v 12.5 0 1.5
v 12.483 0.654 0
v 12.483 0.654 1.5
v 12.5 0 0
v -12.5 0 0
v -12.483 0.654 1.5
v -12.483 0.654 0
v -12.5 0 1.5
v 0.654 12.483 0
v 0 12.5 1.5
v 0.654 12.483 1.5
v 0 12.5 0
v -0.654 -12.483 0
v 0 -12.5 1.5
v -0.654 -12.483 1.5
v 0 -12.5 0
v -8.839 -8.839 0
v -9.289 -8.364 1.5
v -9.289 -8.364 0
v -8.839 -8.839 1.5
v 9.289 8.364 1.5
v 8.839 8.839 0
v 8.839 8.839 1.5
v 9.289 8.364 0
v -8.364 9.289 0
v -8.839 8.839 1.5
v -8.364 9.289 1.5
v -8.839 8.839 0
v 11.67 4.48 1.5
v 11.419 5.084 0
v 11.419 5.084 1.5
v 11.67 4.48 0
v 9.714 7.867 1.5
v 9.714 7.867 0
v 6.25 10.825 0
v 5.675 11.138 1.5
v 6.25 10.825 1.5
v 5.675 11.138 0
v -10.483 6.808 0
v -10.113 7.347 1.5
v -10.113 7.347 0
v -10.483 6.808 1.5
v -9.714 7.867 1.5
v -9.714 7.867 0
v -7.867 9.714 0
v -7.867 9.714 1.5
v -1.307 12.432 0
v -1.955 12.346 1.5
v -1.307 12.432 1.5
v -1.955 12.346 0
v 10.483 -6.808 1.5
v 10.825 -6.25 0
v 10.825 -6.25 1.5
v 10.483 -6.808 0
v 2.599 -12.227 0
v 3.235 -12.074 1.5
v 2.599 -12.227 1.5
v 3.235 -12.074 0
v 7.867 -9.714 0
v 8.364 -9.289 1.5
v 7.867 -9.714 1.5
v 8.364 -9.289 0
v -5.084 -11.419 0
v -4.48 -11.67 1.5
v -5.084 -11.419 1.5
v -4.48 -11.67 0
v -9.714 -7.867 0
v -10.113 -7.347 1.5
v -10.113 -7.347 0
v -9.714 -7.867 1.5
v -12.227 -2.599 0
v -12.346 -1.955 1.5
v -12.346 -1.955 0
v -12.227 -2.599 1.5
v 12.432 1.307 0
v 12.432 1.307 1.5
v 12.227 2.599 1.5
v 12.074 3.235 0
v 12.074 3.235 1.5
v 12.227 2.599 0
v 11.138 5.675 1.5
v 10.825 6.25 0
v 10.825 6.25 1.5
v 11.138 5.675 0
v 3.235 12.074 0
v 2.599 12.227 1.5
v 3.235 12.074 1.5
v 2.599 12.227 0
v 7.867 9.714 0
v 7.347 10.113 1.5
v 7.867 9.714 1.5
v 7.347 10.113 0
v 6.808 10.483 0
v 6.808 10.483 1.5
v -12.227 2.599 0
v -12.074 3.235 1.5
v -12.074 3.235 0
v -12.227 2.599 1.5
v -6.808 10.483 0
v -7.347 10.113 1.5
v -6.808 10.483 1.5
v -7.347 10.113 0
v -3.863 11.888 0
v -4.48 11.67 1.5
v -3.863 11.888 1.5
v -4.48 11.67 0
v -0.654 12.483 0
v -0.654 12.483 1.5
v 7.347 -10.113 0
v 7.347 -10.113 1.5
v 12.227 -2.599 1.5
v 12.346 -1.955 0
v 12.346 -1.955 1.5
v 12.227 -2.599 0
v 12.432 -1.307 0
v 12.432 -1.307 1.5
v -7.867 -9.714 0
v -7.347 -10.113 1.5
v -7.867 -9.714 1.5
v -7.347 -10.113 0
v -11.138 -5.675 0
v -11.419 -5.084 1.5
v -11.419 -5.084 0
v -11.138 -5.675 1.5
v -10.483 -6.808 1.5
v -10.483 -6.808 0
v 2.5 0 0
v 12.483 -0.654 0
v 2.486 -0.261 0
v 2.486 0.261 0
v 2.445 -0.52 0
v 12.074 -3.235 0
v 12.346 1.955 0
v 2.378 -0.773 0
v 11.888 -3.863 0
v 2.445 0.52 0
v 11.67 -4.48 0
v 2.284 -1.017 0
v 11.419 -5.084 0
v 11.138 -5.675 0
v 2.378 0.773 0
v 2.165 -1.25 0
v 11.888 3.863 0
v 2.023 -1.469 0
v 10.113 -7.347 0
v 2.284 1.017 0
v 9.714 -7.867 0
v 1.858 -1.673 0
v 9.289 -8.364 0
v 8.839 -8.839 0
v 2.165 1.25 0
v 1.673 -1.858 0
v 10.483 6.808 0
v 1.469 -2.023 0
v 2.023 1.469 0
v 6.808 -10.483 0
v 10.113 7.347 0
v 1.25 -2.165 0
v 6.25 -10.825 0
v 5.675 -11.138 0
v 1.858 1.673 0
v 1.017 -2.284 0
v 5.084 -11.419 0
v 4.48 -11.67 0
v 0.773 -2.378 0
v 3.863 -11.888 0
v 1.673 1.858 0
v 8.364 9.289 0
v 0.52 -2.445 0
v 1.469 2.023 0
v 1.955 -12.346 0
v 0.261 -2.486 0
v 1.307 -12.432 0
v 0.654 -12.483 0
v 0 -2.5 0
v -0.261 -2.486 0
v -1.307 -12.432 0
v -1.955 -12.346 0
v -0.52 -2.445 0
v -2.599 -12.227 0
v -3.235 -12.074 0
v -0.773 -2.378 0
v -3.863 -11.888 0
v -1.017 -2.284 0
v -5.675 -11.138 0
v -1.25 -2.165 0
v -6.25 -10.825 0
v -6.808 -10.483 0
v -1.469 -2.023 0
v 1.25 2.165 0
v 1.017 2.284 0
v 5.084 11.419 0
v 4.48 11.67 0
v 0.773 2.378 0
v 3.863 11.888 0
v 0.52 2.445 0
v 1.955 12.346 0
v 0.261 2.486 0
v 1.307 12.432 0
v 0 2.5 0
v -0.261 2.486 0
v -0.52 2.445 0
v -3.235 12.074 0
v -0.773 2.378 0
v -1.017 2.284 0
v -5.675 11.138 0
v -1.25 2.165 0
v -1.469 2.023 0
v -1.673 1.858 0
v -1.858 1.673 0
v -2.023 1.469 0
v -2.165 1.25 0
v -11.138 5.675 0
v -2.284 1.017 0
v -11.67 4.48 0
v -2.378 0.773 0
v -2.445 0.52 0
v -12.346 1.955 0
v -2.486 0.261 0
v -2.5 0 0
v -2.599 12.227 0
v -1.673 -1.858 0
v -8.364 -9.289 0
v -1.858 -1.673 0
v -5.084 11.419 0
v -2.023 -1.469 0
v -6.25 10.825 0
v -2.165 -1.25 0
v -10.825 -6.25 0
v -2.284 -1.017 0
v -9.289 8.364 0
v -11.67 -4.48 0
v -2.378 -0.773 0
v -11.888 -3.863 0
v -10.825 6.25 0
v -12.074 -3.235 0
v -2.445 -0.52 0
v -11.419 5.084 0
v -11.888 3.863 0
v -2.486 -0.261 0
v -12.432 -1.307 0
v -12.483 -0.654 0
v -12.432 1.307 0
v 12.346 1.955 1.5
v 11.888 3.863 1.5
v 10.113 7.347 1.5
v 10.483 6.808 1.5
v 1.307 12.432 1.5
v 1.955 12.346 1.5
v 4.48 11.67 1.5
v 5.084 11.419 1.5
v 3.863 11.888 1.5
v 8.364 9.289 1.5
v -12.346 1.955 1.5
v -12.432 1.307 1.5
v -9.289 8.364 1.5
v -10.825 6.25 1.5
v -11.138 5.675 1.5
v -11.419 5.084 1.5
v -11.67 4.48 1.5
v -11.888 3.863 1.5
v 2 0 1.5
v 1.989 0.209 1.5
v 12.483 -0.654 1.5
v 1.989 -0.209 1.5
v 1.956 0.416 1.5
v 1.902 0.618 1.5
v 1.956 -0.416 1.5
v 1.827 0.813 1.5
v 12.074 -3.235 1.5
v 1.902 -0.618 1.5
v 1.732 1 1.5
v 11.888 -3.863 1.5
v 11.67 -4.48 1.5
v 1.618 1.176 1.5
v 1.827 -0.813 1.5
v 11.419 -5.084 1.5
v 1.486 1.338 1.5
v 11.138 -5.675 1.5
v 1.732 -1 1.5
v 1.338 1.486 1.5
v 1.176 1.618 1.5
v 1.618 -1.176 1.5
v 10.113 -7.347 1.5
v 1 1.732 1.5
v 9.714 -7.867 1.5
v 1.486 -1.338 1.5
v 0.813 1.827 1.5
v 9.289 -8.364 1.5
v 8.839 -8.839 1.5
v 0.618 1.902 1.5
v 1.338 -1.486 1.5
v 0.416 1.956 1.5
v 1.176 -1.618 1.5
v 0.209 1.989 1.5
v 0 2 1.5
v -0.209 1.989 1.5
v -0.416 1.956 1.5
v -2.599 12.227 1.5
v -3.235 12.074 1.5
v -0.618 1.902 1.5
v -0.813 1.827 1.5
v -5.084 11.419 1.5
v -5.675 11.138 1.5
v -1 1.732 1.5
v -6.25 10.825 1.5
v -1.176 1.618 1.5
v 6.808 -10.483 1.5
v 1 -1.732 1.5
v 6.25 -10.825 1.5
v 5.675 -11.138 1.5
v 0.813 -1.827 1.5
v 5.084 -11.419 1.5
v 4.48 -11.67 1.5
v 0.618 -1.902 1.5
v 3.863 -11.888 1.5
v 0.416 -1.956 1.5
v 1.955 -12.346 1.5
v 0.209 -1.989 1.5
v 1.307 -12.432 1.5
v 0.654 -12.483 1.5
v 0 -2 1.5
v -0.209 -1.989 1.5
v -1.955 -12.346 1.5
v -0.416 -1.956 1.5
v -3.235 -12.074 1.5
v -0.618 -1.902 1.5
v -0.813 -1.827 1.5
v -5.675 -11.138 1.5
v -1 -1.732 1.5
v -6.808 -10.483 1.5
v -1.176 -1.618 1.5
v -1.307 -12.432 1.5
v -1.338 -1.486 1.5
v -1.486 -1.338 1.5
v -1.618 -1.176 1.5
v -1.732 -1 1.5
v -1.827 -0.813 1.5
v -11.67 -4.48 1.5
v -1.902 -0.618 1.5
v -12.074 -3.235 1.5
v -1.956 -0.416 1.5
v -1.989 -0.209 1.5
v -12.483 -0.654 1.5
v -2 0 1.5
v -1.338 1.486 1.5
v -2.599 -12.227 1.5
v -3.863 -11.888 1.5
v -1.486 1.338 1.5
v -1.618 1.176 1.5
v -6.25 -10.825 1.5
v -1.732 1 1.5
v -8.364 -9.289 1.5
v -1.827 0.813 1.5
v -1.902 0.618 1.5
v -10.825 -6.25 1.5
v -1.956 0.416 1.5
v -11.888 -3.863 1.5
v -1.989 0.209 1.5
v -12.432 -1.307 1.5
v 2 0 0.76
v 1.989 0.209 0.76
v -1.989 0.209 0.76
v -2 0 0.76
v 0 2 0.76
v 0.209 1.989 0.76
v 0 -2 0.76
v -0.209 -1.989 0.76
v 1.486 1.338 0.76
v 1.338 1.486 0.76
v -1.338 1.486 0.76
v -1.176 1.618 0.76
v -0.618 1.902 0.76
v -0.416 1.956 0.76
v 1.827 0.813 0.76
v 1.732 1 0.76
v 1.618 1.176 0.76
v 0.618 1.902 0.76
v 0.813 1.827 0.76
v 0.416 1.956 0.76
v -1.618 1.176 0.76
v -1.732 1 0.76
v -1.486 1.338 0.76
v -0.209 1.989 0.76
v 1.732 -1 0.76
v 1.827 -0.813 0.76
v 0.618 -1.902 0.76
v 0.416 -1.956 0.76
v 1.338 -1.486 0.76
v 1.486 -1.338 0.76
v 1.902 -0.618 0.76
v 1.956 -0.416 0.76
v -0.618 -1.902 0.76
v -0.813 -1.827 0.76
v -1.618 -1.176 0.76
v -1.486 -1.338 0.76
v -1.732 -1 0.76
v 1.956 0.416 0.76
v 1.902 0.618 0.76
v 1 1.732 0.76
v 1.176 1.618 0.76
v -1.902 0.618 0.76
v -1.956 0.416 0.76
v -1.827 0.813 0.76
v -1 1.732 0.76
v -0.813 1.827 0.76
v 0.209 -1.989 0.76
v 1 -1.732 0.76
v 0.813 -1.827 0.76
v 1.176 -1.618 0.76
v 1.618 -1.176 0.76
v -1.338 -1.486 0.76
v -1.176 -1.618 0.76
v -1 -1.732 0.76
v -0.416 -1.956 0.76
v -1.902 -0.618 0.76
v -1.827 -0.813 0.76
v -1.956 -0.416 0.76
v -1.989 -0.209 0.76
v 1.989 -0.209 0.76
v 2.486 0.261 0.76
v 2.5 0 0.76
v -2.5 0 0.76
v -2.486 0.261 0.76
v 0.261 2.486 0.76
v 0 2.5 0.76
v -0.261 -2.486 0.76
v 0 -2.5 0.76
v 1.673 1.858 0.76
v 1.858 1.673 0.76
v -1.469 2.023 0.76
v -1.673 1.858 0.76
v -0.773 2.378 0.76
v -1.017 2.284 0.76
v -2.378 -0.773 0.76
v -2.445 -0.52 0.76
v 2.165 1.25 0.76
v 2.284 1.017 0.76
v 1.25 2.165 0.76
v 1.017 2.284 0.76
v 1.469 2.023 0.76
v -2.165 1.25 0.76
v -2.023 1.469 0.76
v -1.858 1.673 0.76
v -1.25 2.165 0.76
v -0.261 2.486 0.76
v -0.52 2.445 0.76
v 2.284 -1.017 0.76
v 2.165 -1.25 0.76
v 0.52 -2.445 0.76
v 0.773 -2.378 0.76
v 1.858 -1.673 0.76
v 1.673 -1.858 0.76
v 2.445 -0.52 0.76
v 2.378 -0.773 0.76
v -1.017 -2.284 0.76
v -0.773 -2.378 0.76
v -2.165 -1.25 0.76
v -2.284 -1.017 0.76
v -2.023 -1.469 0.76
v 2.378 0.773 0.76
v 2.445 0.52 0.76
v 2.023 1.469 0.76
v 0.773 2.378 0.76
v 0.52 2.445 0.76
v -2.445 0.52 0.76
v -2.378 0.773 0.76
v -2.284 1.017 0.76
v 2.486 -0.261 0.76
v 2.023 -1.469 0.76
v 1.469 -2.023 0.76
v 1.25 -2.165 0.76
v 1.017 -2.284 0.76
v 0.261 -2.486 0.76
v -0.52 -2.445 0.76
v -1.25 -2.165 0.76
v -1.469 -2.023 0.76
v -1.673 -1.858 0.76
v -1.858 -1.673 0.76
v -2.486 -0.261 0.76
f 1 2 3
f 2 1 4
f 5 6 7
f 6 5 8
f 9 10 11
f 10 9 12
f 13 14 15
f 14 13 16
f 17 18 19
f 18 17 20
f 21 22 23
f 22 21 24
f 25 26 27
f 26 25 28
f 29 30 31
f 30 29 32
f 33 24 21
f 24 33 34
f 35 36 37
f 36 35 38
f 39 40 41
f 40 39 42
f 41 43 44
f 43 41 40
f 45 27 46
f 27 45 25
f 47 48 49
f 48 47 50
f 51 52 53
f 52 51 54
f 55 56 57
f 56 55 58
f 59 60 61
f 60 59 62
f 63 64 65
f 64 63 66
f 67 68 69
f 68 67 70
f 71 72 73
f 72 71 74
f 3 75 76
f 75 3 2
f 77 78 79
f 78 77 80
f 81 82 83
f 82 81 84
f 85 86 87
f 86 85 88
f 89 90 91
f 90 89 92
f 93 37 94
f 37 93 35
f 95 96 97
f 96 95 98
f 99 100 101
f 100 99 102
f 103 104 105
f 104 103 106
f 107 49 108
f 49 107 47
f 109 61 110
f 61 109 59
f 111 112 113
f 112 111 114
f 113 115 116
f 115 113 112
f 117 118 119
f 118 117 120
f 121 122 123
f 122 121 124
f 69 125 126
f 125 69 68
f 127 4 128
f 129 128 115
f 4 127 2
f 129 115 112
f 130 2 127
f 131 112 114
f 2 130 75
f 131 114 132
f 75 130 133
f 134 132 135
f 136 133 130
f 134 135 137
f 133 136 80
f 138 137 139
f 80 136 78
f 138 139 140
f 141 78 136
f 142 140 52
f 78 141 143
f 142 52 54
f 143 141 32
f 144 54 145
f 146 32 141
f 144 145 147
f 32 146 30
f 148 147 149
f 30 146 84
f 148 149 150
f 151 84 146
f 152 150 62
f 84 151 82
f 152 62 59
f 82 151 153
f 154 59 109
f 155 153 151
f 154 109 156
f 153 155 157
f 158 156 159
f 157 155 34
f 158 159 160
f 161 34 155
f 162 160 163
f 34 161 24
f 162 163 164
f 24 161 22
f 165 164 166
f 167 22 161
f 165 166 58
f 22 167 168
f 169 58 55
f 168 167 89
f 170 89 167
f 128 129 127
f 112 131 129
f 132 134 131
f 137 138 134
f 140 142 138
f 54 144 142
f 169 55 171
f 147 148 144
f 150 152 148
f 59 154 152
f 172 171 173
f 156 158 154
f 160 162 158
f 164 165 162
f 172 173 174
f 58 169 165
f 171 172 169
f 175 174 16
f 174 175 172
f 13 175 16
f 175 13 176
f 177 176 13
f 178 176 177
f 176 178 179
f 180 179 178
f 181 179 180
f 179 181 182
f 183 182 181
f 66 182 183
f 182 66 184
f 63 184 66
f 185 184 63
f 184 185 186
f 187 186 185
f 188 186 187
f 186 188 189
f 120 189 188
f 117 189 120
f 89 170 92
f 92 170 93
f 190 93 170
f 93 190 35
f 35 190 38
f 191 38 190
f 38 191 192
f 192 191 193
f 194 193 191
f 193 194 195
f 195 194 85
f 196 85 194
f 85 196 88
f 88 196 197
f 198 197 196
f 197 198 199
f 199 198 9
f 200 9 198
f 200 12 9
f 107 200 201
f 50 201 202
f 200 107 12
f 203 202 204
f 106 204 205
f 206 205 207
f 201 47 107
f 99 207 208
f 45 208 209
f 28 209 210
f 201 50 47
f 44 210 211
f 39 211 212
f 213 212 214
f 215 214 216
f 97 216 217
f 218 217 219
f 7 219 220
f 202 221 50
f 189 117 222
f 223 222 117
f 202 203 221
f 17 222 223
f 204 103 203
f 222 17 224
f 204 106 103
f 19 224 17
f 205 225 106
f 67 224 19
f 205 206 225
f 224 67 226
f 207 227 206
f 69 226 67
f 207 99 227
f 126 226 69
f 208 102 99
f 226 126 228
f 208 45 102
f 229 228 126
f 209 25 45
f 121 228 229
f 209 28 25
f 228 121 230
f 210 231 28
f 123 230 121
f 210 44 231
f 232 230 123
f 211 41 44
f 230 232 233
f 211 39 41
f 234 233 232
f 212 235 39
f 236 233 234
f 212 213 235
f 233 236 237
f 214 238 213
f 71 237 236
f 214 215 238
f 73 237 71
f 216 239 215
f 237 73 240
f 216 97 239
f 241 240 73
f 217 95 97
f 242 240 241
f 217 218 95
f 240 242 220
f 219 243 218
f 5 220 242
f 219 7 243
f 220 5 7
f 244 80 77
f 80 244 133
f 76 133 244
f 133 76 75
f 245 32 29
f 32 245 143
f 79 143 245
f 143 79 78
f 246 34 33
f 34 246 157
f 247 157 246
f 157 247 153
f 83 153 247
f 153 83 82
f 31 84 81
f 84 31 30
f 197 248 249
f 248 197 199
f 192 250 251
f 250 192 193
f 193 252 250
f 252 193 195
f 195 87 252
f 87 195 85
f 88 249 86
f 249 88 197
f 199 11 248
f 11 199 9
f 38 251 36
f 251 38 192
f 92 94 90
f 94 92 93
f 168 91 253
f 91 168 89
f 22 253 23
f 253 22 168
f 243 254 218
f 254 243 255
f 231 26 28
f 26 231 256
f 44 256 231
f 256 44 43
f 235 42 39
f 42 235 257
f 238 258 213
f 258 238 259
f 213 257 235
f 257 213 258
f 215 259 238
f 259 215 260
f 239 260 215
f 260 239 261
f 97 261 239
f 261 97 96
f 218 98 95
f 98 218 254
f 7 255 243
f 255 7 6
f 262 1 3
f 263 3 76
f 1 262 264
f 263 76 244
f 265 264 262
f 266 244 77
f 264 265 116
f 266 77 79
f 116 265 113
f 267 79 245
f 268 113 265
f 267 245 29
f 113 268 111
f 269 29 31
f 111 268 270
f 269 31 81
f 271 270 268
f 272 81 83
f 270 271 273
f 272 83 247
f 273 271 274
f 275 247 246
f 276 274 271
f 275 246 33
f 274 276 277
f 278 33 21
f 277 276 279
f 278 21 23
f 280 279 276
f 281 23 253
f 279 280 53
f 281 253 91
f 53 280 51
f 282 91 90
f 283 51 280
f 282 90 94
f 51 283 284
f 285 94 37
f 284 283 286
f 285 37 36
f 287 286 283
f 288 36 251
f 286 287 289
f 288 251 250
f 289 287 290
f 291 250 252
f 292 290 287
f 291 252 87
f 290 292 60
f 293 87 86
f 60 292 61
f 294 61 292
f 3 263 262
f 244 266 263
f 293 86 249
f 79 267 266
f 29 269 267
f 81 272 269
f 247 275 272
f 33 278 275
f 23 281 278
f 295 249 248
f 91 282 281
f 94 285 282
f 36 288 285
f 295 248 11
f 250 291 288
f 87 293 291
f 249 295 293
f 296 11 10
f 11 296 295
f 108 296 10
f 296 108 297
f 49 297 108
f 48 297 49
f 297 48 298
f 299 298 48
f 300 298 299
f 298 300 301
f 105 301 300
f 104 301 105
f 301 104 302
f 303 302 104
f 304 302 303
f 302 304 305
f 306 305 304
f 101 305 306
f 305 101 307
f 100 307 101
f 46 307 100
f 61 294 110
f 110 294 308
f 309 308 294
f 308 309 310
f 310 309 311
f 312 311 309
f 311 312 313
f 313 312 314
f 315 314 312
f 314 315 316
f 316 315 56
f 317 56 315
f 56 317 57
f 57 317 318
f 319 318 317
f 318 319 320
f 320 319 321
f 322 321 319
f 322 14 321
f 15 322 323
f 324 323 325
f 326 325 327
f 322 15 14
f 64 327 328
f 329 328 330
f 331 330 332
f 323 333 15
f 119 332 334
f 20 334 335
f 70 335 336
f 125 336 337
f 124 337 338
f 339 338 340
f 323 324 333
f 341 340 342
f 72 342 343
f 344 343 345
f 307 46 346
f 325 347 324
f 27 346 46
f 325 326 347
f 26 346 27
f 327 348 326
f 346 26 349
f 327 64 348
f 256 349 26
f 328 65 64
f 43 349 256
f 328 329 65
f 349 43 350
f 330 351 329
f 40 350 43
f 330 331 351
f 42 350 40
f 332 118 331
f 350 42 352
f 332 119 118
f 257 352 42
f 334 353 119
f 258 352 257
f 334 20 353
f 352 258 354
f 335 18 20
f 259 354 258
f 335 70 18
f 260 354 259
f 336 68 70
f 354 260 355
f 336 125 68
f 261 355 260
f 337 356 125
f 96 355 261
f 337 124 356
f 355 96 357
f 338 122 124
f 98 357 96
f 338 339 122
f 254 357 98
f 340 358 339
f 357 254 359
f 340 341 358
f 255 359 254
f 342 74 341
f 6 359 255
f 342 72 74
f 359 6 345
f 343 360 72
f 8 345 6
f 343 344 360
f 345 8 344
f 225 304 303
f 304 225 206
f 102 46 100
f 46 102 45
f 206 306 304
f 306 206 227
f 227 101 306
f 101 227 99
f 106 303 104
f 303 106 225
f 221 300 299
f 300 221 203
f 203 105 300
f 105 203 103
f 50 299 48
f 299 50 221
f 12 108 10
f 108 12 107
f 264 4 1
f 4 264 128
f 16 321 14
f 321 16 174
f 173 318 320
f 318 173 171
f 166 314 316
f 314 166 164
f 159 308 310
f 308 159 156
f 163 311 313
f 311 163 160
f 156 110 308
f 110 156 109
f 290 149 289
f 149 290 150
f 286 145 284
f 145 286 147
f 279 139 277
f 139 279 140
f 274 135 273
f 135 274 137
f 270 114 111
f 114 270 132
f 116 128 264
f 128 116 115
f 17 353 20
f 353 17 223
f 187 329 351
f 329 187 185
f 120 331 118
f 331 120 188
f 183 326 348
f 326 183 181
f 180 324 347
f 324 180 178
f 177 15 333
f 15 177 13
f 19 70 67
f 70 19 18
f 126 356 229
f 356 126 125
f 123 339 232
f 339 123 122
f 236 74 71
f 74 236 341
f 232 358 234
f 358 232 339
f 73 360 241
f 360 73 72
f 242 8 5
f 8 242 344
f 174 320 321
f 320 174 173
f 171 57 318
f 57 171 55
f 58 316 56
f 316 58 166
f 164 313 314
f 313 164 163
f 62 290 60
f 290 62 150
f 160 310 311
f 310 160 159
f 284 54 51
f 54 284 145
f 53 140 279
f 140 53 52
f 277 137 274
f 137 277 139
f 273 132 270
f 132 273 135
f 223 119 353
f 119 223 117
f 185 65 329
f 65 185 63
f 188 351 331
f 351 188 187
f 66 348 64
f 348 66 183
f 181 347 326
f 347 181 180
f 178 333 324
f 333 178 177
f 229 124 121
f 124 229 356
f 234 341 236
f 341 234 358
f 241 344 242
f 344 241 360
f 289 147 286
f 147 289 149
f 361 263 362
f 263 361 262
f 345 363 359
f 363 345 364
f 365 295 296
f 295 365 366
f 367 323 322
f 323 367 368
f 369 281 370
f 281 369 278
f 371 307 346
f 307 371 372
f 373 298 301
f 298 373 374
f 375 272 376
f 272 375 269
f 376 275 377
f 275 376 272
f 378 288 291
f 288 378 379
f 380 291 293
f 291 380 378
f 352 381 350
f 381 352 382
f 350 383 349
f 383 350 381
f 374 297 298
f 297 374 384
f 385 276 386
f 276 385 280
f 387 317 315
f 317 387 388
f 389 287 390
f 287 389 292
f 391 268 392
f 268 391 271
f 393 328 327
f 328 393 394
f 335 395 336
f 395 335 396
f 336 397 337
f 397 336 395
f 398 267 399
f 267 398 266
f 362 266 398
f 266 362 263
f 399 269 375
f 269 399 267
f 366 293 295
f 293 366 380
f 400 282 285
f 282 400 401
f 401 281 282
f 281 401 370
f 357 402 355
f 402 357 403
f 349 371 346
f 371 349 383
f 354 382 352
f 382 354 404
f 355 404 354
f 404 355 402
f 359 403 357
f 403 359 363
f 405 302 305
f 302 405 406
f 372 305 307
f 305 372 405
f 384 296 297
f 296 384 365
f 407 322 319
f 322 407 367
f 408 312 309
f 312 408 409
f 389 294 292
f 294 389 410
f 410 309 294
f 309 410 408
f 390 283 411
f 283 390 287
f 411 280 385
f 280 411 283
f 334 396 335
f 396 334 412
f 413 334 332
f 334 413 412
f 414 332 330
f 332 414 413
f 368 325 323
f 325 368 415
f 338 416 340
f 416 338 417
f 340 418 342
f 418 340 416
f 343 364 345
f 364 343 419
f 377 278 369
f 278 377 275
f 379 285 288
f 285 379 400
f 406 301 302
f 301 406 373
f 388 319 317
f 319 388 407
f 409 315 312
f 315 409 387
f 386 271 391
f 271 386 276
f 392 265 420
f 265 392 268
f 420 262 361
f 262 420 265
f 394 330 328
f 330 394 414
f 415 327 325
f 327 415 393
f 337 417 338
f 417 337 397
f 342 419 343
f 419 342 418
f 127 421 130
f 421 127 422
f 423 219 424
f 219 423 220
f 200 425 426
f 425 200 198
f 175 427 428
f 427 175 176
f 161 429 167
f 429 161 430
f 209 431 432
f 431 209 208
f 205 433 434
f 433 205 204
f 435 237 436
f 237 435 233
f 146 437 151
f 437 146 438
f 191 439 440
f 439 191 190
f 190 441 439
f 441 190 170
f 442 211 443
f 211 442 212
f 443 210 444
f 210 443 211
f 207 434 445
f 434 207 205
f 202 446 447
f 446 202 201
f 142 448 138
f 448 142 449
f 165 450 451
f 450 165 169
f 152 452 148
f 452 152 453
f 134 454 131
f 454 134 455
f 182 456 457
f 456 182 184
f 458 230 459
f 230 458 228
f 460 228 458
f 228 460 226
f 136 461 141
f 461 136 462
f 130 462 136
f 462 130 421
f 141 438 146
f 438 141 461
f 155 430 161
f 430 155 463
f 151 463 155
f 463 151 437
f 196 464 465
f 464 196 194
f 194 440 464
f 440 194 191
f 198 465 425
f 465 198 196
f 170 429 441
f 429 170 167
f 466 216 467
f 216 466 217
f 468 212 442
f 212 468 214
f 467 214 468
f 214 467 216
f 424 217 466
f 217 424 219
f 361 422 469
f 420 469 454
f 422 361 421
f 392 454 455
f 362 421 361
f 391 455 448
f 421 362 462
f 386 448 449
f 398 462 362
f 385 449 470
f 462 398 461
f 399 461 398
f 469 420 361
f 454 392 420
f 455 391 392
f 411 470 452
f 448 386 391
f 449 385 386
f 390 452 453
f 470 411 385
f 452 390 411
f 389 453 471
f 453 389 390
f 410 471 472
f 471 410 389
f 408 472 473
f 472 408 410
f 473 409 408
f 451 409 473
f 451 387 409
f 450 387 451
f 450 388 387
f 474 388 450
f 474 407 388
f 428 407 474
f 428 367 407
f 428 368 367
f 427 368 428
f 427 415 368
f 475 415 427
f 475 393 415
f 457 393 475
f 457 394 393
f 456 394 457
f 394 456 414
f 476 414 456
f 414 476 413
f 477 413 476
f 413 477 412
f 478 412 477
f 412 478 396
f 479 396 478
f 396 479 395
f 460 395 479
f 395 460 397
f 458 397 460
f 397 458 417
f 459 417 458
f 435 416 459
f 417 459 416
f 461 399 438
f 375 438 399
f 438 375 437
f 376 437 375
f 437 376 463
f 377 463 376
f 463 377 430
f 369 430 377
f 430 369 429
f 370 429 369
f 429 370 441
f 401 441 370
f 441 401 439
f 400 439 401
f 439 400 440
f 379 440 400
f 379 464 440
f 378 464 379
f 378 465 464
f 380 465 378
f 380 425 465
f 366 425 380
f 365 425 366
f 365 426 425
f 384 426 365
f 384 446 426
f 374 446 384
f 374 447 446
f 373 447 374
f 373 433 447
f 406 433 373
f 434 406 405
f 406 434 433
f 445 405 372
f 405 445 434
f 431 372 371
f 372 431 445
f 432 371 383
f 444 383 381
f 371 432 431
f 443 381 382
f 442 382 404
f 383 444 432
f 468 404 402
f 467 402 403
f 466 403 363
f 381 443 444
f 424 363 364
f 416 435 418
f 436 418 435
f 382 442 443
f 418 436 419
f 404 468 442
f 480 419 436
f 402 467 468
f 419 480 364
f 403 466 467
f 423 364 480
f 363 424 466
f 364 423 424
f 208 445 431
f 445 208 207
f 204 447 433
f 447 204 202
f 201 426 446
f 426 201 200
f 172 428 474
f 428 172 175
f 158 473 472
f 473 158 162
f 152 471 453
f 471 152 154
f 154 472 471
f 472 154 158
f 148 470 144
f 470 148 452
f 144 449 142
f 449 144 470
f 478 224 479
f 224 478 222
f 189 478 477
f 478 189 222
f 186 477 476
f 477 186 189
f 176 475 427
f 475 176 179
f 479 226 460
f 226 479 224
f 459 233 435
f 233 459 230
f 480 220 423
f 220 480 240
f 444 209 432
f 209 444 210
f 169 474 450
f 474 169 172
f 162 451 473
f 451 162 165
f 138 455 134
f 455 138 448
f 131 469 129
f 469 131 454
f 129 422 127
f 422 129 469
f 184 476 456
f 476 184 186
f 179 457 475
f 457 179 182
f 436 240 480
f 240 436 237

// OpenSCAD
    // ============================================================
//  Cylinder with Digits 0-9 Engraved on the Border
//  Diameter: 25 mm  |  Height: 3 mm  |  Digits rotated 90°
//  Central hole: 4 mm diameter
// ============================================================

// ── Parameters (edit here) ──────────────────────────────────
diameter    = 25;     // outer diameter [mm]
cyl_height  = 1.5;    // total cylinder height [mm]
hole_diam   = 4;      // central hole diameter [mm]
snap_size   = 1;      // snap fit size [mm]
snap_height = 0.75;    // snap fit size [mm]
$fn         = 120;    // curve resolution (higher = smoother)
// ── Derived values ──────────────────────────────────────────
radius     = diameter / 2;

// ── Model ───────────────────────────────────────────────────
difference() {

    difference() {

        // Base cylinder
        cylinder(h = cyl_height, d = diameter, center = false);

        // Central through-hole
        translate([0, 0, -0.01])
            cylinder(h = cyl_height + 0.02, d = hole_diam, center = false, $fn = 60);
    }

    // Snap through-hole
    translate([0, 0, -0.01])
        cylinder(h = snap_height + 0.02, d = hole_diam + snap_size, center = false, $fn = 60);
}
